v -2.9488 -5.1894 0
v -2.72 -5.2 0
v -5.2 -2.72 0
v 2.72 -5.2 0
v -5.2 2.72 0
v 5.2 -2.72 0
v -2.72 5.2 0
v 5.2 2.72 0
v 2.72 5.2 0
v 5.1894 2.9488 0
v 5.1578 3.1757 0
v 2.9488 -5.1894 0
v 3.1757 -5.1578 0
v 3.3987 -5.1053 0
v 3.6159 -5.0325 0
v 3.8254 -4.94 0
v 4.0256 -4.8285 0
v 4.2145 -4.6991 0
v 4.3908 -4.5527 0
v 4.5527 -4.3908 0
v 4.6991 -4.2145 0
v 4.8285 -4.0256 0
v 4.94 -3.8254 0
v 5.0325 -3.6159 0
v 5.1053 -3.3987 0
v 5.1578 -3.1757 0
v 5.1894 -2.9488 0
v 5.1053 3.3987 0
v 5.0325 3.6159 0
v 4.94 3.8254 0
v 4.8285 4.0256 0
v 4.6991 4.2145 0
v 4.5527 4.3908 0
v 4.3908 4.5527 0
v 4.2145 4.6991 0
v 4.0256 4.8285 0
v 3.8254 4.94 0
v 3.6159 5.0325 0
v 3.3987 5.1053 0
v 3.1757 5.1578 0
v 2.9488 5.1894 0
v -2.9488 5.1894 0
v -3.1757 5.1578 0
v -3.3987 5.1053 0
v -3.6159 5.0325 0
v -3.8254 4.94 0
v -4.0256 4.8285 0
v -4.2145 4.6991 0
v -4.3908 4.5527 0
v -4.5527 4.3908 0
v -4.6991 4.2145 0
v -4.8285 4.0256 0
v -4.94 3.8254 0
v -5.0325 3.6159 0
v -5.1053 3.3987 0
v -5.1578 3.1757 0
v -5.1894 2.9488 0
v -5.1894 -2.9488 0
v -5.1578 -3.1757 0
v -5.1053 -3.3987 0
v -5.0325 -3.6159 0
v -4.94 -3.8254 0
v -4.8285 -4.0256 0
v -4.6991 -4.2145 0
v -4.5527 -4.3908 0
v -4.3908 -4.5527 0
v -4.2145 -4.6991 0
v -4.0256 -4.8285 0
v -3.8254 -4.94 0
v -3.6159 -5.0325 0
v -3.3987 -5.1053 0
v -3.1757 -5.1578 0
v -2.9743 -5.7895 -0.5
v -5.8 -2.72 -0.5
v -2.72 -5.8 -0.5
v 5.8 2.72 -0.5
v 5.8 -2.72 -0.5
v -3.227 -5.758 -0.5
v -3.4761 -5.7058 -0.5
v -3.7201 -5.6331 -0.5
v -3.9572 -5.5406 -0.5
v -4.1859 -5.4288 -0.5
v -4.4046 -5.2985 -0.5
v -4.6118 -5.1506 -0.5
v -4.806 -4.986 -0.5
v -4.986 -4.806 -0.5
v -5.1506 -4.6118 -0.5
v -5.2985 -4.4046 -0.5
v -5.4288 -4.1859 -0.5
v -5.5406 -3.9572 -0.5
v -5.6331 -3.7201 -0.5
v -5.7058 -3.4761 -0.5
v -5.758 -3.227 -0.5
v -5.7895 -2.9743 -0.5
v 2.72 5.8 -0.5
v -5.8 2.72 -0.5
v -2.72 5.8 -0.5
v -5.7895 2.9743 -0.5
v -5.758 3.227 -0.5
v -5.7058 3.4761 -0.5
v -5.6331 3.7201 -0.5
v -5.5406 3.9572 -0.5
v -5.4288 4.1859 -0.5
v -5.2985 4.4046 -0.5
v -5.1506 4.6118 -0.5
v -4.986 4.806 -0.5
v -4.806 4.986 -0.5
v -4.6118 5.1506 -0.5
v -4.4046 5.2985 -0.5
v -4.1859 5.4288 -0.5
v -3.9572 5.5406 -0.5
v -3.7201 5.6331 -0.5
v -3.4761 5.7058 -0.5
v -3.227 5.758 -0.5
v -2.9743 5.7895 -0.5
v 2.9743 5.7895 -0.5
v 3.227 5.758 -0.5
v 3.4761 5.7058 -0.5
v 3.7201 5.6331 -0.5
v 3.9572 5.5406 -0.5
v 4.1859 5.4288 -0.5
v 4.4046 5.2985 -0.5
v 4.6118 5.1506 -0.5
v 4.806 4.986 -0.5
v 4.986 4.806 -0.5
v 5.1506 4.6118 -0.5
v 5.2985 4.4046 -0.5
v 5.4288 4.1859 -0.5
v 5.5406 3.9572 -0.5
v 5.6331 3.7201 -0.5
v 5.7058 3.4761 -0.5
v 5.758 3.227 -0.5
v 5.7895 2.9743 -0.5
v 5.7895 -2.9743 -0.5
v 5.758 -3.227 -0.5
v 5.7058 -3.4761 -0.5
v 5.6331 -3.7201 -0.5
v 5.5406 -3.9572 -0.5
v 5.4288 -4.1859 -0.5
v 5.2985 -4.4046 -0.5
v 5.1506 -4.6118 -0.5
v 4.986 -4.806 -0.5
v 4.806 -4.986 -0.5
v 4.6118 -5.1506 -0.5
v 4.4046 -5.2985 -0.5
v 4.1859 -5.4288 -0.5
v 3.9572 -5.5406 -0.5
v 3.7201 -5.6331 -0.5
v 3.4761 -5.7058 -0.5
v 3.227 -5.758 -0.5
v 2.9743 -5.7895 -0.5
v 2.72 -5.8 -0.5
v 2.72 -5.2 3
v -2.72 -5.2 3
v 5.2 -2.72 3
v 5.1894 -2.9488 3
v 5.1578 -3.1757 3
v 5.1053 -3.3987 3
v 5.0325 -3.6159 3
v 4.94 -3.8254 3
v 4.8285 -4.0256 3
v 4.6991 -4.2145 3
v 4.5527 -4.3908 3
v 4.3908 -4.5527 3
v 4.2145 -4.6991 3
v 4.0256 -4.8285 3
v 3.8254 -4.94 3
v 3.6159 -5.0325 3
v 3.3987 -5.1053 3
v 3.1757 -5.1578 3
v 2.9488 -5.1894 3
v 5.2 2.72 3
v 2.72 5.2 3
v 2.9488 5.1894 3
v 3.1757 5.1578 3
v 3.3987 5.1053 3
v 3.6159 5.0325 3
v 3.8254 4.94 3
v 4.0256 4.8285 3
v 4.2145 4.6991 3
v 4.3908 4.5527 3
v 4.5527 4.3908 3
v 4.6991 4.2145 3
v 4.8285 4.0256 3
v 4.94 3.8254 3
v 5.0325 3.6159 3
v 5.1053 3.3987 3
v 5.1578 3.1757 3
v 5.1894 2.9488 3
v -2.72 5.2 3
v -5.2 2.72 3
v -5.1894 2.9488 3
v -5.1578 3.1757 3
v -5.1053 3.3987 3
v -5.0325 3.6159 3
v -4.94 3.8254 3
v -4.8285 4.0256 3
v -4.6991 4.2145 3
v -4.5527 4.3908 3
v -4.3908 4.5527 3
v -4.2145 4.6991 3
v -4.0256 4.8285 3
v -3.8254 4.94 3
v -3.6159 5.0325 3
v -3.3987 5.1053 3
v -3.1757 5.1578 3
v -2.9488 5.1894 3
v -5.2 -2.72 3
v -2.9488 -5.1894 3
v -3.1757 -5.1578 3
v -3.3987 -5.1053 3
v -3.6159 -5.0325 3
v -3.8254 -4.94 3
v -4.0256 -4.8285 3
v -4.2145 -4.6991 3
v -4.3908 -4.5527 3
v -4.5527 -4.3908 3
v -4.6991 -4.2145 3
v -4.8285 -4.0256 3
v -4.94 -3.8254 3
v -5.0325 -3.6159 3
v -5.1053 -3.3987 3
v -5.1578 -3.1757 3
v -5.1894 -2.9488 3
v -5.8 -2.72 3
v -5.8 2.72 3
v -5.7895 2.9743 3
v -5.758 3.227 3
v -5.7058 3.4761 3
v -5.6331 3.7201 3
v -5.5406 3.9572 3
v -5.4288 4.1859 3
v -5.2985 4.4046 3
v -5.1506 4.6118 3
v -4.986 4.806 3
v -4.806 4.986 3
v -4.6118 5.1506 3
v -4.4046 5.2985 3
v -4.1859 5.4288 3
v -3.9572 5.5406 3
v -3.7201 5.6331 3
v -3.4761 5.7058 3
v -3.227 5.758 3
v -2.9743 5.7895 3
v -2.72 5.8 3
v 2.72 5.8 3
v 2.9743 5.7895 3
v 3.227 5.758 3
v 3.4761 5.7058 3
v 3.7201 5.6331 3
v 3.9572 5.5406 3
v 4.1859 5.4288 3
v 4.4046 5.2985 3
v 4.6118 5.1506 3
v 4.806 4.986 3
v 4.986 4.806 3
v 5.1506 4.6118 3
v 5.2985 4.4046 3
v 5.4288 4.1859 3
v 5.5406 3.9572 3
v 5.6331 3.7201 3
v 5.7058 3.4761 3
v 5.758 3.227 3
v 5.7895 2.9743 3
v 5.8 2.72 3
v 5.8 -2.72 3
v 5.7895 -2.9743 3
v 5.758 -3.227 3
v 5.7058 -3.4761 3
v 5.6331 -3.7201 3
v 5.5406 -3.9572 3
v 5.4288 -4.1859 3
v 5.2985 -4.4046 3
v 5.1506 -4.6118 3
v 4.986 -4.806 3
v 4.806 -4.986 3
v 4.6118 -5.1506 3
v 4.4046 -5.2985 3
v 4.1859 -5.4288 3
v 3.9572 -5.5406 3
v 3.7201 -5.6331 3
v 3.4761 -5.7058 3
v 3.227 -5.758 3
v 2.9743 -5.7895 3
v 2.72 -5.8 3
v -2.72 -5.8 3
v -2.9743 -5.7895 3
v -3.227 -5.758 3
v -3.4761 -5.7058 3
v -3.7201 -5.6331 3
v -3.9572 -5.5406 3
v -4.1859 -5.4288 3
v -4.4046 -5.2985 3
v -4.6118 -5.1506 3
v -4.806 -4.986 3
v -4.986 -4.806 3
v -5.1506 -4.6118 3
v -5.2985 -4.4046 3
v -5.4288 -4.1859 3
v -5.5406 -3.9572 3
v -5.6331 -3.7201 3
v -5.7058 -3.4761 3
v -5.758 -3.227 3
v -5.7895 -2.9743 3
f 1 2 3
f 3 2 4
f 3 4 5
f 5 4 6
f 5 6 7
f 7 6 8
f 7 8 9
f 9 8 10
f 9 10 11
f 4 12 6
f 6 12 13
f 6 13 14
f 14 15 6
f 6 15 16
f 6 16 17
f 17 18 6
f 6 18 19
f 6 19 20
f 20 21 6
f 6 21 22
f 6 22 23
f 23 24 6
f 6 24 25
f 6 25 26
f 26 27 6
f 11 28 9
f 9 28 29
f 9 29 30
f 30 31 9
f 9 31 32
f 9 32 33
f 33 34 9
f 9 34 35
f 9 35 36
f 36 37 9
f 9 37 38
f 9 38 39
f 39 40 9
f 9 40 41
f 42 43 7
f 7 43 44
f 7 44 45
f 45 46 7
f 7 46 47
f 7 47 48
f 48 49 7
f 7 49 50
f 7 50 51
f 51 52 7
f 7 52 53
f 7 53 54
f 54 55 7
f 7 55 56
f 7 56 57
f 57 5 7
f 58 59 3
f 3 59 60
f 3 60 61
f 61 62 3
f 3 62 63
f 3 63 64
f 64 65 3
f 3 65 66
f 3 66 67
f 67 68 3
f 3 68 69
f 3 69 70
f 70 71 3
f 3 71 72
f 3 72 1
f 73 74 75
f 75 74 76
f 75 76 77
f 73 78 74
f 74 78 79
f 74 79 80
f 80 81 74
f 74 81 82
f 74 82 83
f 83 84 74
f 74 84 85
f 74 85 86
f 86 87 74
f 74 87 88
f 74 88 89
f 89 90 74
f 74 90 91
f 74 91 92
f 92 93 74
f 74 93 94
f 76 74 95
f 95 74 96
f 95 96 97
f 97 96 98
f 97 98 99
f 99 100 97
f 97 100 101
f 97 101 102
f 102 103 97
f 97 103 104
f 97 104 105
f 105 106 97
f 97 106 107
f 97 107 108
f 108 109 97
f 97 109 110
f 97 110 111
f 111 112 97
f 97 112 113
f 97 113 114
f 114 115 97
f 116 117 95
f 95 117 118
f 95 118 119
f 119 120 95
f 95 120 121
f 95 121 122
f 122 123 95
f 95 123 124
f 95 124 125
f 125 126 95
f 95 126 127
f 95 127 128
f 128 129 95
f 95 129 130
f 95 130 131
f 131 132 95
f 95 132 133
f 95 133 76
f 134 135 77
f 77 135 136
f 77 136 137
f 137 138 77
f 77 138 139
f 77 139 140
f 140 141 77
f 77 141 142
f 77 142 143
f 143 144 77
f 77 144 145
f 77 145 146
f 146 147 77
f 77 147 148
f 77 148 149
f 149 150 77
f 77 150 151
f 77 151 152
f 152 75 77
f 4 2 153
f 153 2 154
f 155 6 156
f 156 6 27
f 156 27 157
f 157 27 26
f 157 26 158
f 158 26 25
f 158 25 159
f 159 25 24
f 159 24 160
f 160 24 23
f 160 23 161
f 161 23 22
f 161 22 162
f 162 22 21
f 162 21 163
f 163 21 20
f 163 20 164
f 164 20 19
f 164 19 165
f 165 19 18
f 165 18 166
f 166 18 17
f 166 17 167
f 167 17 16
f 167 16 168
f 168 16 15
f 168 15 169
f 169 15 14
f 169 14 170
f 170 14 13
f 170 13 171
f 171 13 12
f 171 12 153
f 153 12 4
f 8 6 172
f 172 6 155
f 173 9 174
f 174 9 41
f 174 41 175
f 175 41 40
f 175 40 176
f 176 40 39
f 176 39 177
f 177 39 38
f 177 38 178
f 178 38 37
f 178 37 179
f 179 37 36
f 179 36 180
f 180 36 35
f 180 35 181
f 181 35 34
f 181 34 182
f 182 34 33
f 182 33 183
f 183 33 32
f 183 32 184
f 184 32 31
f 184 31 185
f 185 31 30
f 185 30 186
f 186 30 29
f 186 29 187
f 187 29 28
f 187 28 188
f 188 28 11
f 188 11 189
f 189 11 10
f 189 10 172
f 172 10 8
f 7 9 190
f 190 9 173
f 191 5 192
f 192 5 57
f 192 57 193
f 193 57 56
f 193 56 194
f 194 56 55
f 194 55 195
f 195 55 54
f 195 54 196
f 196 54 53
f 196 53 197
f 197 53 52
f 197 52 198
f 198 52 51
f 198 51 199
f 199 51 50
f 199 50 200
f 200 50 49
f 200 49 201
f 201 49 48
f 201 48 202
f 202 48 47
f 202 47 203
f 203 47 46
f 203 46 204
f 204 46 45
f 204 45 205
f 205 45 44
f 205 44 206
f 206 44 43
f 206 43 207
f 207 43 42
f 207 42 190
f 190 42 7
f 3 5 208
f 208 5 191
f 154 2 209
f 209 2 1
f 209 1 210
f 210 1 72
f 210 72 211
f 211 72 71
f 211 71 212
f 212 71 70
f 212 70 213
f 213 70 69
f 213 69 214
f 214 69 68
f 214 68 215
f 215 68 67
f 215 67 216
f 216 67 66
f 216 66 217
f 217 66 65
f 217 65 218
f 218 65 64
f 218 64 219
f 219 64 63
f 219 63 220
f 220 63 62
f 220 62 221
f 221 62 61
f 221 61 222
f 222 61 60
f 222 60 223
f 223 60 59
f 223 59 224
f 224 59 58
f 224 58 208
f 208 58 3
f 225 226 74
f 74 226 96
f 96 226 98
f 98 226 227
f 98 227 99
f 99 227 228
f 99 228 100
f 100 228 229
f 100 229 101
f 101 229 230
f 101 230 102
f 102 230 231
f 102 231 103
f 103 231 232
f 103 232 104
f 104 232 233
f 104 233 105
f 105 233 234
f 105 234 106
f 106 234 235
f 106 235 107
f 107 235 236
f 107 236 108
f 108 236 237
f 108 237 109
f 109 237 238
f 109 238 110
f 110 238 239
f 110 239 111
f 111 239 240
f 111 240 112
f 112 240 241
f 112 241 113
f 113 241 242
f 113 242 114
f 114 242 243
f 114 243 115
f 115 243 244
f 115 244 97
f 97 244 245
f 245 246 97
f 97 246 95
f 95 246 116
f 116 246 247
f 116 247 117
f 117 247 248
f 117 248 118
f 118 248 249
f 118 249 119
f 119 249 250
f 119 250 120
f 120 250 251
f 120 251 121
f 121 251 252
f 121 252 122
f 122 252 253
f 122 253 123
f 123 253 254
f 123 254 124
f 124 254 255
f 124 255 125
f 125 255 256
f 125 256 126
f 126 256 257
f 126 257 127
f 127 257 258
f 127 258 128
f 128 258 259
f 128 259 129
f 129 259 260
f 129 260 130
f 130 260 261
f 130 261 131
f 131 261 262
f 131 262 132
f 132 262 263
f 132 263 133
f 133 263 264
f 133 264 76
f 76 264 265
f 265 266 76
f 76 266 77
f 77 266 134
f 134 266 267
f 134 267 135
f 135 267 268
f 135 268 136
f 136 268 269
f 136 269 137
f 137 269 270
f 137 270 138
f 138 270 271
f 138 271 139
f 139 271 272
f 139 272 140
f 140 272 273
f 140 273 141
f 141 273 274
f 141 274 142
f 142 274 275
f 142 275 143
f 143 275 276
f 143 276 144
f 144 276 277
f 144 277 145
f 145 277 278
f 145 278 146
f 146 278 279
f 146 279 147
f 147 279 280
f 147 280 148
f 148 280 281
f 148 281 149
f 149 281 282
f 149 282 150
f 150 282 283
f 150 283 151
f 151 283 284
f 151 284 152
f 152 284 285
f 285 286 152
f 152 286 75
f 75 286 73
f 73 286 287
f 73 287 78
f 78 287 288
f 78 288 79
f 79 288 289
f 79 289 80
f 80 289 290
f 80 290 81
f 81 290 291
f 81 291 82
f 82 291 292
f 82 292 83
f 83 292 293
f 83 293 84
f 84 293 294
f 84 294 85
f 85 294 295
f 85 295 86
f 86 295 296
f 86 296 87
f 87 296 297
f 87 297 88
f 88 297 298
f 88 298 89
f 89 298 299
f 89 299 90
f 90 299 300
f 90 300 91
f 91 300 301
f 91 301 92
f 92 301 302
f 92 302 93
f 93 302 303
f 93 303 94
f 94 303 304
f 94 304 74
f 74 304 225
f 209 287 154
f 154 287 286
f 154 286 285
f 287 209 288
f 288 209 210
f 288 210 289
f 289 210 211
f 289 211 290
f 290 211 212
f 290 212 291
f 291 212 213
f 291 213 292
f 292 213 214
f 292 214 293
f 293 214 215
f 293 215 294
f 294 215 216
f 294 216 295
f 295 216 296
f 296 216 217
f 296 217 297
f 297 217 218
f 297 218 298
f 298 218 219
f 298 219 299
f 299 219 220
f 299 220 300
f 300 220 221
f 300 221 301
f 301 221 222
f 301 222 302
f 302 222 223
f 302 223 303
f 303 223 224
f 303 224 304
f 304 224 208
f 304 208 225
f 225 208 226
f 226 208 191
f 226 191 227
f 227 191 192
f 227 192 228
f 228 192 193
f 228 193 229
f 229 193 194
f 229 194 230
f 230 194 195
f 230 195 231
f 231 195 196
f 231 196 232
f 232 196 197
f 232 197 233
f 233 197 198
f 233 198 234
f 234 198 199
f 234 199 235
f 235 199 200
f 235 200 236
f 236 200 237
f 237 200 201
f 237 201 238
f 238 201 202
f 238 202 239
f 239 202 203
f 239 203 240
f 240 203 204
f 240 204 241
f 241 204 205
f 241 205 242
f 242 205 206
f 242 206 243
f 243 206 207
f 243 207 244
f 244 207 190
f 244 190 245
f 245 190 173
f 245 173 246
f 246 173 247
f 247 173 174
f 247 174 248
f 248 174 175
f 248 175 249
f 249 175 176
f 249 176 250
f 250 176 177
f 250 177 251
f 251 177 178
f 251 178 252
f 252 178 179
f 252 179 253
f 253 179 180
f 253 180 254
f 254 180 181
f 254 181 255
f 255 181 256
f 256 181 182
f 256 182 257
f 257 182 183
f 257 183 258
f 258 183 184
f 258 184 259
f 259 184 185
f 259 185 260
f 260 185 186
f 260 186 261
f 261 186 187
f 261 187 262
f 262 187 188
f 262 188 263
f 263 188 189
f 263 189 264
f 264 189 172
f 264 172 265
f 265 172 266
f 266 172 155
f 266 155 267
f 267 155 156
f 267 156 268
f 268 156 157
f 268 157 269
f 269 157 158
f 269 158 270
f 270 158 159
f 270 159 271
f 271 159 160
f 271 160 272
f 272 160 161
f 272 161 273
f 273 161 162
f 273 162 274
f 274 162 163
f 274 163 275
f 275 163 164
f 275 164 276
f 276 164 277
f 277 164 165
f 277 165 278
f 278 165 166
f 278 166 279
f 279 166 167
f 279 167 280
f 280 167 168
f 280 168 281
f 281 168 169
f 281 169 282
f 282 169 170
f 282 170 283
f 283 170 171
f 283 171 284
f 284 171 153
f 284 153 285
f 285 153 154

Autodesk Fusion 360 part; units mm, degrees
sketch "Sketch1" plane through (0, 0, 0) normal (0, 0, 1) x (1, 0, 0)
  line L0 (2.72, 5) -> (-2.72, 5)
  line L1 (-5, 2.72) -> (-5, -2.72)
  line L2 (-2.72, -5) -> (2.72, -5)
  line L3 (5, -2.72) -> (5, 2.72)
  line L4 (5, 5) -> (-5, -5) construction
  line L5 (-5, 5) -> (5, -5) construction
  arc A0 (5, 2.72) -> (2.72, 5) centre (2.72, 2.72) ccw
  arc A1 (2.72, -5) -> (5, -2.72) centre (2.72, -2.72) ccw
  arc A2 (-5, -2.72) -> (-2.72, -5) centre (-2.72, -2.72) ccw
  arc A3 (-2.72, 5) -> (-5, 2.72) centre (-2.72, 2.72) ccw
  line L6 (-2.72, -5.2) -> (2.72, -5.2)
  arc A4 (2.72, -5.2) -> (5.2, -2.72) centre (2.72, -2.72) ccw
  line L7 (5.2, -2.72) -> (5.2, 2.72)
  arc A5 (5.2, 2.72) -> (2.72, 5.2) centre (2.72, 2.72) ccw
  line L8 (2.72, 5.2) -> (-2.72, 5.2)
  arc A6 (-2.72, 5.2) -> (-5.2, 2.72) centre (-2.72, 2.72) ccw
  line L9 (-5.2, 2.72) -> (-5.2, -2.72)
  arc A7 (-5.2, -2.72) -> (-2.72, -5.2) centre (-2.72, -2.72) ccw
  line L10 (-2.72, -5.8) -> (2.72, -5.8)
  arc A8 (2.72, -5.8) -> (5.8, -2.72) centre (2.72, -2.72) ccw
  line L11 (5.8, -2.72) -> (5.8, 2.72)
  arc A9 (5.8, 2.72) -> (2.72, 5.8) centre (2.72, 2.72) ccw
  line L12 (2.72, 5.8) -> (-2.72, 5.8)
  arc A10 (-2.72, 5.8) -> (-5.8, 2.72) centre (-2.72, 2.72) ccw
  line L13 (-5.8, 2.72) -> (-5.8, -2.72)
  arc A11 (-5.8, -2.72) -> (-2.72, -5.8) centre (-2.72, -2.72) ccw
  dimension "d1" = 10
  dimension "d2" = 10
  dimension "d3" = 2.28
  dimension "d4" = 0.2
  dimension "d5" = 0.8
extrude "Extrude1" add sketch "Sketch1" along normal blind 3 contours L10 A8 L11 A9 L12 A10 L13 A11
extrude "Extrude2" add sketch "Sketch1" against normal blind 0.5 contours L0 L1 L2 L3 A0 A1 A2 A3 | L6 A4 L7 A5 L8 A6 L9 A7 | L10 A8 L11 A9 L12 A10 L13 A11
